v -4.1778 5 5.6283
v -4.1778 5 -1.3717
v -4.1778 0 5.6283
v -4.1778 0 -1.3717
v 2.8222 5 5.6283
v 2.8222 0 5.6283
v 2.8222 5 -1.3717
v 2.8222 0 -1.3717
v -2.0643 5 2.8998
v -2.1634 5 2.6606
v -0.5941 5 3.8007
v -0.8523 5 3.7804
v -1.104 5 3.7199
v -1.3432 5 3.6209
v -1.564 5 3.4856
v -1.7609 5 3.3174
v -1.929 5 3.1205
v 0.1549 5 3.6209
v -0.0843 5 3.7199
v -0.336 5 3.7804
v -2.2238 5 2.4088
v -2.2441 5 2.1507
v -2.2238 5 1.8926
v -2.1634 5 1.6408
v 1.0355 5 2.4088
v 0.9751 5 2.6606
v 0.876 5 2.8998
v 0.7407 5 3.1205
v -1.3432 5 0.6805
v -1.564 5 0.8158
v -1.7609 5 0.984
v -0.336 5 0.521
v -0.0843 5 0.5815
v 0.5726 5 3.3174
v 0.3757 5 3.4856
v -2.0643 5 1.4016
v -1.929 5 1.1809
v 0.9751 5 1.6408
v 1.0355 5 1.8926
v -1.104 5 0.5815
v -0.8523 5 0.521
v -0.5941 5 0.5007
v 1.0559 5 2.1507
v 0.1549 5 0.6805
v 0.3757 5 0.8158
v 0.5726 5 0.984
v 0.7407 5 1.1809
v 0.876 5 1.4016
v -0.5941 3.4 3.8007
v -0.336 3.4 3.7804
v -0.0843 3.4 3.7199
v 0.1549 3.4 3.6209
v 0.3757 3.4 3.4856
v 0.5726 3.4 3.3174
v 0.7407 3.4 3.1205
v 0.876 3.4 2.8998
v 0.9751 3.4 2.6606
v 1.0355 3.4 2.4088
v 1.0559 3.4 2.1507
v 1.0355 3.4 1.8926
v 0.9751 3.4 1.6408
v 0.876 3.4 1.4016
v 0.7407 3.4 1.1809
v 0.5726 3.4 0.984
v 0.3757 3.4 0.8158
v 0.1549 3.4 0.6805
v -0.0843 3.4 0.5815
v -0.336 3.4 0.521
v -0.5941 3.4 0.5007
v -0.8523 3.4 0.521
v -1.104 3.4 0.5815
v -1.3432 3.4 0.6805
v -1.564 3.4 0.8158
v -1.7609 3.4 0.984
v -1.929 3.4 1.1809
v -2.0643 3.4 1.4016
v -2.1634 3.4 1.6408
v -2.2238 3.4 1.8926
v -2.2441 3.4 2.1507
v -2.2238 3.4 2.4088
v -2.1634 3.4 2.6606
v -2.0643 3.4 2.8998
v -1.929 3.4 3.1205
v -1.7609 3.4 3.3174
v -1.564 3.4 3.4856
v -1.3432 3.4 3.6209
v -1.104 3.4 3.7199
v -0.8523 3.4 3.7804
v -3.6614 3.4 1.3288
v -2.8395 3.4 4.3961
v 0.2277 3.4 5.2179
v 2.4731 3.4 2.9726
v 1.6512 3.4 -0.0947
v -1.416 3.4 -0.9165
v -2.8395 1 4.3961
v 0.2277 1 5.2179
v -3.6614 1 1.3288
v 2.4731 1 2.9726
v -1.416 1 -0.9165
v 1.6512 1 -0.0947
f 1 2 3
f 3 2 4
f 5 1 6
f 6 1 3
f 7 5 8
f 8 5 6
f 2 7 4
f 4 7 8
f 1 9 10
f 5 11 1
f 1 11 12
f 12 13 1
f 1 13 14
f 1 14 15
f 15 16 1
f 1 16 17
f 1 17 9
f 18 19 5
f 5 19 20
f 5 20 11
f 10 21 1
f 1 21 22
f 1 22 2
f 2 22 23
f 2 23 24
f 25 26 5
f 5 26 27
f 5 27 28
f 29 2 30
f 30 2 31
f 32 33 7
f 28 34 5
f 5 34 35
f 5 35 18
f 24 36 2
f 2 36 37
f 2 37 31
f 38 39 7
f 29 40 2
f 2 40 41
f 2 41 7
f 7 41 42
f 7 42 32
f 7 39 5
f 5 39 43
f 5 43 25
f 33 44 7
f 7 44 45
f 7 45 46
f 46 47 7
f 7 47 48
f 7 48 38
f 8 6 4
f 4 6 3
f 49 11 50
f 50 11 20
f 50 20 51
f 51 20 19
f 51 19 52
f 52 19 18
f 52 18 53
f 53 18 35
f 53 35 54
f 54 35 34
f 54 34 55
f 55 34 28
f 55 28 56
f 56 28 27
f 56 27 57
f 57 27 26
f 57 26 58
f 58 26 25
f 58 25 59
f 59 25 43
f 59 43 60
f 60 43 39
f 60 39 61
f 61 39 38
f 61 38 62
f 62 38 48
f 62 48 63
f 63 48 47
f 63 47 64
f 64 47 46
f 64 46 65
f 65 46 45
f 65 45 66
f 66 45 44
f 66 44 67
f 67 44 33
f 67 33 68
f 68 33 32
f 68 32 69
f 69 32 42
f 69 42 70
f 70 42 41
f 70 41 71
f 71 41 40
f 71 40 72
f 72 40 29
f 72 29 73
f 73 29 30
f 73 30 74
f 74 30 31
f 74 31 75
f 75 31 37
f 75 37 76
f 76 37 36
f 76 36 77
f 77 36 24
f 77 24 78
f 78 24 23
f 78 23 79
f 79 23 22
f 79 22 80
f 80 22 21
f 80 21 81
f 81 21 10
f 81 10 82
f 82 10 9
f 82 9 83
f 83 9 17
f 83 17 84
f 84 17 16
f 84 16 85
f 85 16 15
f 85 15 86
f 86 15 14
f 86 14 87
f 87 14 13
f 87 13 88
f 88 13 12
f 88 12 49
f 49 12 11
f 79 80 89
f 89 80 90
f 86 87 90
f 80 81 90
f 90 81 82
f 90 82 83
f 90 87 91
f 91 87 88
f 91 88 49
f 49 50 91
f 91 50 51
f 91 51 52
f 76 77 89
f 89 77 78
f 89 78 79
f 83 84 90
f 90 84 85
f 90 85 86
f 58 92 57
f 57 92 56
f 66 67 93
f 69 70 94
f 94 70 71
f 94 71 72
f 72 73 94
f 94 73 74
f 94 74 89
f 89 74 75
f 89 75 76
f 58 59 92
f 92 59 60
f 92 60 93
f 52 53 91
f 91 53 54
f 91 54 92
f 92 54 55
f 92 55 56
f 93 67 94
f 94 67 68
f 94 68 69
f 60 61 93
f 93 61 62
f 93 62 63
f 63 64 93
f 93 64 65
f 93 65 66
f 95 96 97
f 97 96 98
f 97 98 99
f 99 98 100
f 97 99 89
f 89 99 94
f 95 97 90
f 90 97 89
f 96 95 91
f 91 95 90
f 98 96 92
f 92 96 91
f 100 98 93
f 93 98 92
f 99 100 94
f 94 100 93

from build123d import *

# Parameters (mm, degrees)
SKETCH1_W           = 7
SKETCH1_H           = 7
BOSS_EXTRUDE1_DEPTH = 5
SKETCH4_R           = 1.65
CUT_EXTRUDE4_DEPTH  = 4
SKETCH6_R           = 1.65
CUT_EXTRUDE6_DEPTH  = 4
SKETCH6_4_R         = 1.65
BOSS_EXTRUDE2_DEPTH = 1.6


with BuildPart() as part:
    # Sketch1 → Boss-Extrude1 (new body)
    with BuildSketch(Plane(origin=(0, 0, 0), x_dir=(1, 0, 0), z_dir=(0, 1, 0))):
        with Locations((-0.67779661, -2.128287226)):
            Rectangle(SKETCH1_W, SKETCH1_H)
    extrude(amount=BOSS_EXTRUDE1_DEPTH)

    # Sketch4 → Cut-Extrude4 (cut)
    with BuildSketch(Plane(origin=(0, 5, 0), x_dir=(1, 0, 0), z_dir=(0, 1, 0))):
        Polygon((-1.416005829, 0.916524834), (-3.661371426, -1.328840764), (-2.839510577, -4.396067211), (0.22771587, -5.21792806), (2.473081468, -2.972562463), (1.651220618, 0.094663984), align=None)
        with Locations((-0.594144979, -2.150701613)):
            Circle(SKETCH4_R, mode=Mode.SUBTRACT)
    extrude(amount=-CUT_EXTRUDE4_DEPTH, mode=Mode.SUBTRACT)

    # Sketch6 → Cut-Extrude6 (cut)
    with BuildSketch(Plane(origin=(0, 5, 0), x_dir=(1, 0, 0), z_dir=(0, 1, 0))):
        with Locations((-0.594144979, -2.150701613)):
            Circle(SKETCH6_R)
    extrude(amount=-CUT_EXTRUDE6_DEPTH, mode=Mode.SUBTRACT)

    # Sketch6<4> → Boss-Extrude2 (add)
    with BuildSketch(Plane(origin=(0, 5, 0), x_dir=(1, 0, 0), z_dir=(0, 1, 0))):
        Polygon((-1.416005829, 0.916524834), (-3.661371426, -1.328840764), (-2.839510577, -4.396067211), (0.22771587, -5.21792806), (2.473081468, -2.972562463), (1.651220618, 0.094663984), align=None)
        with Locations((-0.594144979, -2.150701613)):
            Circle(SKETCH6_4_R, mode=Mode.SUBTRACT)
    extrude(amount=-BOSS_EXTRUDE2_DEPTH)


solid = part.part
